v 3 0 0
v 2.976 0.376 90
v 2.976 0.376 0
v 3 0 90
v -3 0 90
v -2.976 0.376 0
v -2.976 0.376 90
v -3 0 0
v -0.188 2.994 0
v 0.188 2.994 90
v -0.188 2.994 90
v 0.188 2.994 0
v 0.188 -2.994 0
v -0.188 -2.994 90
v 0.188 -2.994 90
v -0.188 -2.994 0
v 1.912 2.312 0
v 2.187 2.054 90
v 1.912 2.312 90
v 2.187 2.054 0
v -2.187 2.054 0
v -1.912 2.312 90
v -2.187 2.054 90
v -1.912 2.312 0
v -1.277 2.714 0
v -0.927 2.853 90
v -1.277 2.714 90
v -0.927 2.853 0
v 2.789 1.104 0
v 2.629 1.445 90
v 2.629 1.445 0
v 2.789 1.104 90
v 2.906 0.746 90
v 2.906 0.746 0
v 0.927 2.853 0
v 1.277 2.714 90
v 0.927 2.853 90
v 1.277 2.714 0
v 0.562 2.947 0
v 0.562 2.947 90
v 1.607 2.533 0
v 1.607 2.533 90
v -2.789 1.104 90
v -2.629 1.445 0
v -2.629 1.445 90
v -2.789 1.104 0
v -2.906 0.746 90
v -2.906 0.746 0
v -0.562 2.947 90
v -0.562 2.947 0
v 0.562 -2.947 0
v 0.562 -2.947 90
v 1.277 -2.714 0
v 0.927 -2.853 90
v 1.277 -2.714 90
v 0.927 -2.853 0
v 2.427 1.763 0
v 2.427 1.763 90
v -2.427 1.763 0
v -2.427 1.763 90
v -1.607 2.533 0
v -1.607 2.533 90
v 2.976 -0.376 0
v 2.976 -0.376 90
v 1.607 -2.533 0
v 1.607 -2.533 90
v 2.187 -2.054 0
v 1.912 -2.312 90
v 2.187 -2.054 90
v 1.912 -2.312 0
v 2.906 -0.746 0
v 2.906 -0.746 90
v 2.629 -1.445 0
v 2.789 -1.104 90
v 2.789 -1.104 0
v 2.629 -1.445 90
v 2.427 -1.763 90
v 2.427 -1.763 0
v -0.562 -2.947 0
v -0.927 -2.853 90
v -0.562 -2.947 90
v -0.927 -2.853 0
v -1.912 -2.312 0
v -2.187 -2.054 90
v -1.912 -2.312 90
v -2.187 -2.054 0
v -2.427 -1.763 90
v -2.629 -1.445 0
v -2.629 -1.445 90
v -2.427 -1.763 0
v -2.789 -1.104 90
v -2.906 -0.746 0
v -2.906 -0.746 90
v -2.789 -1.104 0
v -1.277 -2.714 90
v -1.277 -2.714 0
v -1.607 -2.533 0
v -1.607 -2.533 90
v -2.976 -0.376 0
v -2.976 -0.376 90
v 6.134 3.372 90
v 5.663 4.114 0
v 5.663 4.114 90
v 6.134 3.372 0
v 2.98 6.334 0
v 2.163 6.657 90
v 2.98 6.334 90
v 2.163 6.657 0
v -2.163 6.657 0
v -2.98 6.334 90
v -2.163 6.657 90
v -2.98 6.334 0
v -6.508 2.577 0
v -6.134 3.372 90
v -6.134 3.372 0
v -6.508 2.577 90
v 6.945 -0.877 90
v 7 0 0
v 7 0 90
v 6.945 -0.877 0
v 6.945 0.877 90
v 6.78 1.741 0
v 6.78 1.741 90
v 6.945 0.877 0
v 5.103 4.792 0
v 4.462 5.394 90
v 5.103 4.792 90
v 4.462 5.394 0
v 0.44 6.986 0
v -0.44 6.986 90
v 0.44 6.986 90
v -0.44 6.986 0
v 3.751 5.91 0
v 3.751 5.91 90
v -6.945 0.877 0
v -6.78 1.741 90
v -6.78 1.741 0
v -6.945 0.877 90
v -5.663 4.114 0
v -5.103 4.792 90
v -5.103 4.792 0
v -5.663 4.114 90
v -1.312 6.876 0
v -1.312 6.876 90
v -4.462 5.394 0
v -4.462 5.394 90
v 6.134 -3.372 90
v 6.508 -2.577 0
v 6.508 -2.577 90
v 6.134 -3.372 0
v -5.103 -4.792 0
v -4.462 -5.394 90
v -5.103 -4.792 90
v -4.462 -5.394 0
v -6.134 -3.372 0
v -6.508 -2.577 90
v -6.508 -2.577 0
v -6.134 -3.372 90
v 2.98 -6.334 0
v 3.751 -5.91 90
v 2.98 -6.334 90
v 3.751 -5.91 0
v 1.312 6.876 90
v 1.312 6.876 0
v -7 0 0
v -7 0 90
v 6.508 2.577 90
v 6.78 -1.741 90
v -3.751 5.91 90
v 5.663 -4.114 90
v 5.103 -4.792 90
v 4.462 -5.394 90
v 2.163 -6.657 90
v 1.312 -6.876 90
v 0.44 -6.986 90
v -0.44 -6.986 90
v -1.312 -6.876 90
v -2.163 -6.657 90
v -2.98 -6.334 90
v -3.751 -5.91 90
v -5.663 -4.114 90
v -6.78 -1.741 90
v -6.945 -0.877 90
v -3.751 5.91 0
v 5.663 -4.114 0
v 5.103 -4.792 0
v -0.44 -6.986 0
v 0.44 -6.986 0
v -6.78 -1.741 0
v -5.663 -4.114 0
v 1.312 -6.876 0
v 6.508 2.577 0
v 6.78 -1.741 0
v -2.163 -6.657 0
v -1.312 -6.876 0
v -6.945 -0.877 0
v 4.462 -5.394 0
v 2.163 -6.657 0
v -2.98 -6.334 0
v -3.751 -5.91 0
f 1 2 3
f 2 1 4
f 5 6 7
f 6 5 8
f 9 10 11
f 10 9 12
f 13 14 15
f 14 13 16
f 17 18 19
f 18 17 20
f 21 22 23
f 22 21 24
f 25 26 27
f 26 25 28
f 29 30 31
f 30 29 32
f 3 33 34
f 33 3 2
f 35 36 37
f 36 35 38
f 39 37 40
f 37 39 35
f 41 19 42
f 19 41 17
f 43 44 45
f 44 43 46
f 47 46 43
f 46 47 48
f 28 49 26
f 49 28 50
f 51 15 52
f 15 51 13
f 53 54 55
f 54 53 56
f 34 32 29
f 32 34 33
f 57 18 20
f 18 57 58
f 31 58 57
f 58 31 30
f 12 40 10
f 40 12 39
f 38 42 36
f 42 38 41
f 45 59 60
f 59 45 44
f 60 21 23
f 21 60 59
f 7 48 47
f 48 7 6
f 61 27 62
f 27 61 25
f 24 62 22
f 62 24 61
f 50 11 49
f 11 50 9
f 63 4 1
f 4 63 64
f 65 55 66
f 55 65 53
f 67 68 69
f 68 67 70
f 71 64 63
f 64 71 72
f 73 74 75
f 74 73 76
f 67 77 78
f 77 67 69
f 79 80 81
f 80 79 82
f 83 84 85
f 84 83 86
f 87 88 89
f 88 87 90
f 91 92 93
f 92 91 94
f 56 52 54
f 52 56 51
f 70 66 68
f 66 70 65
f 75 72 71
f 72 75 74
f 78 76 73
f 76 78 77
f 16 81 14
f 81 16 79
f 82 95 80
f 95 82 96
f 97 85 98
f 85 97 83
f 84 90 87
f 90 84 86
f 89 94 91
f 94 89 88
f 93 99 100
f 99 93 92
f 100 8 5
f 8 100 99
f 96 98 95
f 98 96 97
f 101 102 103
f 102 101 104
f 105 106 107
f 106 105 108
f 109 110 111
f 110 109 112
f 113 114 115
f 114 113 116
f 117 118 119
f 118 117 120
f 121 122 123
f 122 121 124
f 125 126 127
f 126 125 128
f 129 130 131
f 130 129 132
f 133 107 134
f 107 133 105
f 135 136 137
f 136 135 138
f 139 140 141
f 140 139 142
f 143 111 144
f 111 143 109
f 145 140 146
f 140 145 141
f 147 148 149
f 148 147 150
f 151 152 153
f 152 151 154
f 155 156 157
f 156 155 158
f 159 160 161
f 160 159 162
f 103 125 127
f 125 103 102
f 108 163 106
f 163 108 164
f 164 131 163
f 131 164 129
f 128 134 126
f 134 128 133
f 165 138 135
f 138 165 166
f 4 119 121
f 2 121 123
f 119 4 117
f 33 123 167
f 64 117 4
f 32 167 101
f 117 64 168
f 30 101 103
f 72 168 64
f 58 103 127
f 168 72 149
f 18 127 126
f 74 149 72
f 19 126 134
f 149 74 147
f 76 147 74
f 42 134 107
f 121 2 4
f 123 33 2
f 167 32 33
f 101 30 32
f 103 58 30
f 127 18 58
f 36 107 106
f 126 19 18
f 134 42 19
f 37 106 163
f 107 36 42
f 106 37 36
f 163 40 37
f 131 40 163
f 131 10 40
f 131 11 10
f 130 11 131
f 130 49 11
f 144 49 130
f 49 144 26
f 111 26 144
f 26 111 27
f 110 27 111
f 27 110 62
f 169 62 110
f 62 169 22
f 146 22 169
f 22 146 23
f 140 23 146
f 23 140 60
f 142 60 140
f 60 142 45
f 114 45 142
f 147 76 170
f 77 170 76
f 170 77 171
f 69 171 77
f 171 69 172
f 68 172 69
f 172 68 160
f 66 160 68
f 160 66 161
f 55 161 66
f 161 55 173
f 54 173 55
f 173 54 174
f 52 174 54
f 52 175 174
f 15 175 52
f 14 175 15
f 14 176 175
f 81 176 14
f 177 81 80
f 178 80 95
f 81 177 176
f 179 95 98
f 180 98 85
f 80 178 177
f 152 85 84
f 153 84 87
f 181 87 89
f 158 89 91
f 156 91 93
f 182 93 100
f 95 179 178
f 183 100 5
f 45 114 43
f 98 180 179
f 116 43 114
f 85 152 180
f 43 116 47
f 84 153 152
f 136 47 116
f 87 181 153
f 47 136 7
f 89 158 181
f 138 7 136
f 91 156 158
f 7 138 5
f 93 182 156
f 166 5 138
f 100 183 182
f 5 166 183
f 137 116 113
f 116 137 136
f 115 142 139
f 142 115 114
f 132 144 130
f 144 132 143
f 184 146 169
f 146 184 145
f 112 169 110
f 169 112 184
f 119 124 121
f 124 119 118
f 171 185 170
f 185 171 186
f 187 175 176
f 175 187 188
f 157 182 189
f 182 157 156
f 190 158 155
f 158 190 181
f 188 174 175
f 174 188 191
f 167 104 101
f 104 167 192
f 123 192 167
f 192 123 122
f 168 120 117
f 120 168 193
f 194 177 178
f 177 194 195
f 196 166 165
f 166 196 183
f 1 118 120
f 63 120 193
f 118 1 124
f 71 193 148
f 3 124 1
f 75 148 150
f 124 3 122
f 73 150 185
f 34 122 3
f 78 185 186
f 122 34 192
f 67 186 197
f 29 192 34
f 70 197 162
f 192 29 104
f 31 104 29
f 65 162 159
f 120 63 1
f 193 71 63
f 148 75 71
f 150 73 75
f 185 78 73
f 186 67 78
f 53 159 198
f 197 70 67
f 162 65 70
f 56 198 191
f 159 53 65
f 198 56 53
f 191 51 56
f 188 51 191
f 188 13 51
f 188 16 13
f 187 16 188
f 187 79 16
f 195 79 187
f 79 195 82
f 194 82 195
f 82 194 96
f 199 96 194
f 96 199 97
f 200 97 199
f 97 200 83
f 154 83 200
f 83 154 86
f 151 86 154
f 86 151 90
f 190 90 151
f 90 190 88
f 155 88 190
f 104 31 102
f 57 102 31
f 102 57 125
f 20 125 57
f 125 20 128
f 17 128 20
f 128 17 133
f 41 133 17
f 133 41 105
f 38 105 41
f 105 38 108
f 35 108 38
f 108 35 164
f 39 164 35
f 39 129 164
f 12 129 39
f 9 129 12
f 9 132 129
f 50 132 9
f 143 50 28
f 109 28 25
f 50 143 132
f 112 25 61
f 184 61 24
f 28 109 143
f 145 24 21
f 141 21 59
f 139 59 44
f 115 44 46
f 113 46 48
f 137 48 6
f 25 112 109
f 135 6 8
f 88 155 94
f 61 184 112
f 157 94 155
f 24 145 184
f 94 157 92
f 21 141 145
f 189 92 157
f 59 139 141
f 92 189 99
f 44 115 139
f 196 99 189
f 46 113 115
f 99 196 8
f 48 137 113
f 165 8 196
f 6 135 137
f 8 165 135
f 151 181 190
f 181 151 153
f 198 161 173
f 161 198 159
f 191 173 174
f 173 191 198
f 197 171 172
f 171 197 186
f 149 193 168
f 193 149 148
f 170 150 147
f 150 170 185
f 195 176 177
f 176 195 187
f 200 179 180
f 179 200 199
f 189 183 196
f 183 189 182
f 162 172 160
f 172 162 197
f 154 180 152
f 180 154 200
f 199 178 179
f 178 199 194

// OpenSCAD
$fn = 50;


difference() {
	union() {
		cylinder(h = 90, r = 7.0000000000);
	}
	union() {
		translate(v = [0.0000000000, 0.0000000000, -100.0000000000]) {
			cylinder(h = 200, r = 3.0000000000);
		}
		translate(v = [0.0000000000, 0.0000000000, -100.0000000000]) {
			cylinder(h = 200, r = 3.0000000000);
		}
		translate(v = [0.0000000000, 0.0000000000, -100.0000000000]) {
			cylinder(h = 200, r = 3.0000000000);
		}
		translate(v = [0.0000000000, 0.0000000000, -100.0000000000]) {
			cylinder(h = 200, r = 3.0000000000);
		}
	}
}
